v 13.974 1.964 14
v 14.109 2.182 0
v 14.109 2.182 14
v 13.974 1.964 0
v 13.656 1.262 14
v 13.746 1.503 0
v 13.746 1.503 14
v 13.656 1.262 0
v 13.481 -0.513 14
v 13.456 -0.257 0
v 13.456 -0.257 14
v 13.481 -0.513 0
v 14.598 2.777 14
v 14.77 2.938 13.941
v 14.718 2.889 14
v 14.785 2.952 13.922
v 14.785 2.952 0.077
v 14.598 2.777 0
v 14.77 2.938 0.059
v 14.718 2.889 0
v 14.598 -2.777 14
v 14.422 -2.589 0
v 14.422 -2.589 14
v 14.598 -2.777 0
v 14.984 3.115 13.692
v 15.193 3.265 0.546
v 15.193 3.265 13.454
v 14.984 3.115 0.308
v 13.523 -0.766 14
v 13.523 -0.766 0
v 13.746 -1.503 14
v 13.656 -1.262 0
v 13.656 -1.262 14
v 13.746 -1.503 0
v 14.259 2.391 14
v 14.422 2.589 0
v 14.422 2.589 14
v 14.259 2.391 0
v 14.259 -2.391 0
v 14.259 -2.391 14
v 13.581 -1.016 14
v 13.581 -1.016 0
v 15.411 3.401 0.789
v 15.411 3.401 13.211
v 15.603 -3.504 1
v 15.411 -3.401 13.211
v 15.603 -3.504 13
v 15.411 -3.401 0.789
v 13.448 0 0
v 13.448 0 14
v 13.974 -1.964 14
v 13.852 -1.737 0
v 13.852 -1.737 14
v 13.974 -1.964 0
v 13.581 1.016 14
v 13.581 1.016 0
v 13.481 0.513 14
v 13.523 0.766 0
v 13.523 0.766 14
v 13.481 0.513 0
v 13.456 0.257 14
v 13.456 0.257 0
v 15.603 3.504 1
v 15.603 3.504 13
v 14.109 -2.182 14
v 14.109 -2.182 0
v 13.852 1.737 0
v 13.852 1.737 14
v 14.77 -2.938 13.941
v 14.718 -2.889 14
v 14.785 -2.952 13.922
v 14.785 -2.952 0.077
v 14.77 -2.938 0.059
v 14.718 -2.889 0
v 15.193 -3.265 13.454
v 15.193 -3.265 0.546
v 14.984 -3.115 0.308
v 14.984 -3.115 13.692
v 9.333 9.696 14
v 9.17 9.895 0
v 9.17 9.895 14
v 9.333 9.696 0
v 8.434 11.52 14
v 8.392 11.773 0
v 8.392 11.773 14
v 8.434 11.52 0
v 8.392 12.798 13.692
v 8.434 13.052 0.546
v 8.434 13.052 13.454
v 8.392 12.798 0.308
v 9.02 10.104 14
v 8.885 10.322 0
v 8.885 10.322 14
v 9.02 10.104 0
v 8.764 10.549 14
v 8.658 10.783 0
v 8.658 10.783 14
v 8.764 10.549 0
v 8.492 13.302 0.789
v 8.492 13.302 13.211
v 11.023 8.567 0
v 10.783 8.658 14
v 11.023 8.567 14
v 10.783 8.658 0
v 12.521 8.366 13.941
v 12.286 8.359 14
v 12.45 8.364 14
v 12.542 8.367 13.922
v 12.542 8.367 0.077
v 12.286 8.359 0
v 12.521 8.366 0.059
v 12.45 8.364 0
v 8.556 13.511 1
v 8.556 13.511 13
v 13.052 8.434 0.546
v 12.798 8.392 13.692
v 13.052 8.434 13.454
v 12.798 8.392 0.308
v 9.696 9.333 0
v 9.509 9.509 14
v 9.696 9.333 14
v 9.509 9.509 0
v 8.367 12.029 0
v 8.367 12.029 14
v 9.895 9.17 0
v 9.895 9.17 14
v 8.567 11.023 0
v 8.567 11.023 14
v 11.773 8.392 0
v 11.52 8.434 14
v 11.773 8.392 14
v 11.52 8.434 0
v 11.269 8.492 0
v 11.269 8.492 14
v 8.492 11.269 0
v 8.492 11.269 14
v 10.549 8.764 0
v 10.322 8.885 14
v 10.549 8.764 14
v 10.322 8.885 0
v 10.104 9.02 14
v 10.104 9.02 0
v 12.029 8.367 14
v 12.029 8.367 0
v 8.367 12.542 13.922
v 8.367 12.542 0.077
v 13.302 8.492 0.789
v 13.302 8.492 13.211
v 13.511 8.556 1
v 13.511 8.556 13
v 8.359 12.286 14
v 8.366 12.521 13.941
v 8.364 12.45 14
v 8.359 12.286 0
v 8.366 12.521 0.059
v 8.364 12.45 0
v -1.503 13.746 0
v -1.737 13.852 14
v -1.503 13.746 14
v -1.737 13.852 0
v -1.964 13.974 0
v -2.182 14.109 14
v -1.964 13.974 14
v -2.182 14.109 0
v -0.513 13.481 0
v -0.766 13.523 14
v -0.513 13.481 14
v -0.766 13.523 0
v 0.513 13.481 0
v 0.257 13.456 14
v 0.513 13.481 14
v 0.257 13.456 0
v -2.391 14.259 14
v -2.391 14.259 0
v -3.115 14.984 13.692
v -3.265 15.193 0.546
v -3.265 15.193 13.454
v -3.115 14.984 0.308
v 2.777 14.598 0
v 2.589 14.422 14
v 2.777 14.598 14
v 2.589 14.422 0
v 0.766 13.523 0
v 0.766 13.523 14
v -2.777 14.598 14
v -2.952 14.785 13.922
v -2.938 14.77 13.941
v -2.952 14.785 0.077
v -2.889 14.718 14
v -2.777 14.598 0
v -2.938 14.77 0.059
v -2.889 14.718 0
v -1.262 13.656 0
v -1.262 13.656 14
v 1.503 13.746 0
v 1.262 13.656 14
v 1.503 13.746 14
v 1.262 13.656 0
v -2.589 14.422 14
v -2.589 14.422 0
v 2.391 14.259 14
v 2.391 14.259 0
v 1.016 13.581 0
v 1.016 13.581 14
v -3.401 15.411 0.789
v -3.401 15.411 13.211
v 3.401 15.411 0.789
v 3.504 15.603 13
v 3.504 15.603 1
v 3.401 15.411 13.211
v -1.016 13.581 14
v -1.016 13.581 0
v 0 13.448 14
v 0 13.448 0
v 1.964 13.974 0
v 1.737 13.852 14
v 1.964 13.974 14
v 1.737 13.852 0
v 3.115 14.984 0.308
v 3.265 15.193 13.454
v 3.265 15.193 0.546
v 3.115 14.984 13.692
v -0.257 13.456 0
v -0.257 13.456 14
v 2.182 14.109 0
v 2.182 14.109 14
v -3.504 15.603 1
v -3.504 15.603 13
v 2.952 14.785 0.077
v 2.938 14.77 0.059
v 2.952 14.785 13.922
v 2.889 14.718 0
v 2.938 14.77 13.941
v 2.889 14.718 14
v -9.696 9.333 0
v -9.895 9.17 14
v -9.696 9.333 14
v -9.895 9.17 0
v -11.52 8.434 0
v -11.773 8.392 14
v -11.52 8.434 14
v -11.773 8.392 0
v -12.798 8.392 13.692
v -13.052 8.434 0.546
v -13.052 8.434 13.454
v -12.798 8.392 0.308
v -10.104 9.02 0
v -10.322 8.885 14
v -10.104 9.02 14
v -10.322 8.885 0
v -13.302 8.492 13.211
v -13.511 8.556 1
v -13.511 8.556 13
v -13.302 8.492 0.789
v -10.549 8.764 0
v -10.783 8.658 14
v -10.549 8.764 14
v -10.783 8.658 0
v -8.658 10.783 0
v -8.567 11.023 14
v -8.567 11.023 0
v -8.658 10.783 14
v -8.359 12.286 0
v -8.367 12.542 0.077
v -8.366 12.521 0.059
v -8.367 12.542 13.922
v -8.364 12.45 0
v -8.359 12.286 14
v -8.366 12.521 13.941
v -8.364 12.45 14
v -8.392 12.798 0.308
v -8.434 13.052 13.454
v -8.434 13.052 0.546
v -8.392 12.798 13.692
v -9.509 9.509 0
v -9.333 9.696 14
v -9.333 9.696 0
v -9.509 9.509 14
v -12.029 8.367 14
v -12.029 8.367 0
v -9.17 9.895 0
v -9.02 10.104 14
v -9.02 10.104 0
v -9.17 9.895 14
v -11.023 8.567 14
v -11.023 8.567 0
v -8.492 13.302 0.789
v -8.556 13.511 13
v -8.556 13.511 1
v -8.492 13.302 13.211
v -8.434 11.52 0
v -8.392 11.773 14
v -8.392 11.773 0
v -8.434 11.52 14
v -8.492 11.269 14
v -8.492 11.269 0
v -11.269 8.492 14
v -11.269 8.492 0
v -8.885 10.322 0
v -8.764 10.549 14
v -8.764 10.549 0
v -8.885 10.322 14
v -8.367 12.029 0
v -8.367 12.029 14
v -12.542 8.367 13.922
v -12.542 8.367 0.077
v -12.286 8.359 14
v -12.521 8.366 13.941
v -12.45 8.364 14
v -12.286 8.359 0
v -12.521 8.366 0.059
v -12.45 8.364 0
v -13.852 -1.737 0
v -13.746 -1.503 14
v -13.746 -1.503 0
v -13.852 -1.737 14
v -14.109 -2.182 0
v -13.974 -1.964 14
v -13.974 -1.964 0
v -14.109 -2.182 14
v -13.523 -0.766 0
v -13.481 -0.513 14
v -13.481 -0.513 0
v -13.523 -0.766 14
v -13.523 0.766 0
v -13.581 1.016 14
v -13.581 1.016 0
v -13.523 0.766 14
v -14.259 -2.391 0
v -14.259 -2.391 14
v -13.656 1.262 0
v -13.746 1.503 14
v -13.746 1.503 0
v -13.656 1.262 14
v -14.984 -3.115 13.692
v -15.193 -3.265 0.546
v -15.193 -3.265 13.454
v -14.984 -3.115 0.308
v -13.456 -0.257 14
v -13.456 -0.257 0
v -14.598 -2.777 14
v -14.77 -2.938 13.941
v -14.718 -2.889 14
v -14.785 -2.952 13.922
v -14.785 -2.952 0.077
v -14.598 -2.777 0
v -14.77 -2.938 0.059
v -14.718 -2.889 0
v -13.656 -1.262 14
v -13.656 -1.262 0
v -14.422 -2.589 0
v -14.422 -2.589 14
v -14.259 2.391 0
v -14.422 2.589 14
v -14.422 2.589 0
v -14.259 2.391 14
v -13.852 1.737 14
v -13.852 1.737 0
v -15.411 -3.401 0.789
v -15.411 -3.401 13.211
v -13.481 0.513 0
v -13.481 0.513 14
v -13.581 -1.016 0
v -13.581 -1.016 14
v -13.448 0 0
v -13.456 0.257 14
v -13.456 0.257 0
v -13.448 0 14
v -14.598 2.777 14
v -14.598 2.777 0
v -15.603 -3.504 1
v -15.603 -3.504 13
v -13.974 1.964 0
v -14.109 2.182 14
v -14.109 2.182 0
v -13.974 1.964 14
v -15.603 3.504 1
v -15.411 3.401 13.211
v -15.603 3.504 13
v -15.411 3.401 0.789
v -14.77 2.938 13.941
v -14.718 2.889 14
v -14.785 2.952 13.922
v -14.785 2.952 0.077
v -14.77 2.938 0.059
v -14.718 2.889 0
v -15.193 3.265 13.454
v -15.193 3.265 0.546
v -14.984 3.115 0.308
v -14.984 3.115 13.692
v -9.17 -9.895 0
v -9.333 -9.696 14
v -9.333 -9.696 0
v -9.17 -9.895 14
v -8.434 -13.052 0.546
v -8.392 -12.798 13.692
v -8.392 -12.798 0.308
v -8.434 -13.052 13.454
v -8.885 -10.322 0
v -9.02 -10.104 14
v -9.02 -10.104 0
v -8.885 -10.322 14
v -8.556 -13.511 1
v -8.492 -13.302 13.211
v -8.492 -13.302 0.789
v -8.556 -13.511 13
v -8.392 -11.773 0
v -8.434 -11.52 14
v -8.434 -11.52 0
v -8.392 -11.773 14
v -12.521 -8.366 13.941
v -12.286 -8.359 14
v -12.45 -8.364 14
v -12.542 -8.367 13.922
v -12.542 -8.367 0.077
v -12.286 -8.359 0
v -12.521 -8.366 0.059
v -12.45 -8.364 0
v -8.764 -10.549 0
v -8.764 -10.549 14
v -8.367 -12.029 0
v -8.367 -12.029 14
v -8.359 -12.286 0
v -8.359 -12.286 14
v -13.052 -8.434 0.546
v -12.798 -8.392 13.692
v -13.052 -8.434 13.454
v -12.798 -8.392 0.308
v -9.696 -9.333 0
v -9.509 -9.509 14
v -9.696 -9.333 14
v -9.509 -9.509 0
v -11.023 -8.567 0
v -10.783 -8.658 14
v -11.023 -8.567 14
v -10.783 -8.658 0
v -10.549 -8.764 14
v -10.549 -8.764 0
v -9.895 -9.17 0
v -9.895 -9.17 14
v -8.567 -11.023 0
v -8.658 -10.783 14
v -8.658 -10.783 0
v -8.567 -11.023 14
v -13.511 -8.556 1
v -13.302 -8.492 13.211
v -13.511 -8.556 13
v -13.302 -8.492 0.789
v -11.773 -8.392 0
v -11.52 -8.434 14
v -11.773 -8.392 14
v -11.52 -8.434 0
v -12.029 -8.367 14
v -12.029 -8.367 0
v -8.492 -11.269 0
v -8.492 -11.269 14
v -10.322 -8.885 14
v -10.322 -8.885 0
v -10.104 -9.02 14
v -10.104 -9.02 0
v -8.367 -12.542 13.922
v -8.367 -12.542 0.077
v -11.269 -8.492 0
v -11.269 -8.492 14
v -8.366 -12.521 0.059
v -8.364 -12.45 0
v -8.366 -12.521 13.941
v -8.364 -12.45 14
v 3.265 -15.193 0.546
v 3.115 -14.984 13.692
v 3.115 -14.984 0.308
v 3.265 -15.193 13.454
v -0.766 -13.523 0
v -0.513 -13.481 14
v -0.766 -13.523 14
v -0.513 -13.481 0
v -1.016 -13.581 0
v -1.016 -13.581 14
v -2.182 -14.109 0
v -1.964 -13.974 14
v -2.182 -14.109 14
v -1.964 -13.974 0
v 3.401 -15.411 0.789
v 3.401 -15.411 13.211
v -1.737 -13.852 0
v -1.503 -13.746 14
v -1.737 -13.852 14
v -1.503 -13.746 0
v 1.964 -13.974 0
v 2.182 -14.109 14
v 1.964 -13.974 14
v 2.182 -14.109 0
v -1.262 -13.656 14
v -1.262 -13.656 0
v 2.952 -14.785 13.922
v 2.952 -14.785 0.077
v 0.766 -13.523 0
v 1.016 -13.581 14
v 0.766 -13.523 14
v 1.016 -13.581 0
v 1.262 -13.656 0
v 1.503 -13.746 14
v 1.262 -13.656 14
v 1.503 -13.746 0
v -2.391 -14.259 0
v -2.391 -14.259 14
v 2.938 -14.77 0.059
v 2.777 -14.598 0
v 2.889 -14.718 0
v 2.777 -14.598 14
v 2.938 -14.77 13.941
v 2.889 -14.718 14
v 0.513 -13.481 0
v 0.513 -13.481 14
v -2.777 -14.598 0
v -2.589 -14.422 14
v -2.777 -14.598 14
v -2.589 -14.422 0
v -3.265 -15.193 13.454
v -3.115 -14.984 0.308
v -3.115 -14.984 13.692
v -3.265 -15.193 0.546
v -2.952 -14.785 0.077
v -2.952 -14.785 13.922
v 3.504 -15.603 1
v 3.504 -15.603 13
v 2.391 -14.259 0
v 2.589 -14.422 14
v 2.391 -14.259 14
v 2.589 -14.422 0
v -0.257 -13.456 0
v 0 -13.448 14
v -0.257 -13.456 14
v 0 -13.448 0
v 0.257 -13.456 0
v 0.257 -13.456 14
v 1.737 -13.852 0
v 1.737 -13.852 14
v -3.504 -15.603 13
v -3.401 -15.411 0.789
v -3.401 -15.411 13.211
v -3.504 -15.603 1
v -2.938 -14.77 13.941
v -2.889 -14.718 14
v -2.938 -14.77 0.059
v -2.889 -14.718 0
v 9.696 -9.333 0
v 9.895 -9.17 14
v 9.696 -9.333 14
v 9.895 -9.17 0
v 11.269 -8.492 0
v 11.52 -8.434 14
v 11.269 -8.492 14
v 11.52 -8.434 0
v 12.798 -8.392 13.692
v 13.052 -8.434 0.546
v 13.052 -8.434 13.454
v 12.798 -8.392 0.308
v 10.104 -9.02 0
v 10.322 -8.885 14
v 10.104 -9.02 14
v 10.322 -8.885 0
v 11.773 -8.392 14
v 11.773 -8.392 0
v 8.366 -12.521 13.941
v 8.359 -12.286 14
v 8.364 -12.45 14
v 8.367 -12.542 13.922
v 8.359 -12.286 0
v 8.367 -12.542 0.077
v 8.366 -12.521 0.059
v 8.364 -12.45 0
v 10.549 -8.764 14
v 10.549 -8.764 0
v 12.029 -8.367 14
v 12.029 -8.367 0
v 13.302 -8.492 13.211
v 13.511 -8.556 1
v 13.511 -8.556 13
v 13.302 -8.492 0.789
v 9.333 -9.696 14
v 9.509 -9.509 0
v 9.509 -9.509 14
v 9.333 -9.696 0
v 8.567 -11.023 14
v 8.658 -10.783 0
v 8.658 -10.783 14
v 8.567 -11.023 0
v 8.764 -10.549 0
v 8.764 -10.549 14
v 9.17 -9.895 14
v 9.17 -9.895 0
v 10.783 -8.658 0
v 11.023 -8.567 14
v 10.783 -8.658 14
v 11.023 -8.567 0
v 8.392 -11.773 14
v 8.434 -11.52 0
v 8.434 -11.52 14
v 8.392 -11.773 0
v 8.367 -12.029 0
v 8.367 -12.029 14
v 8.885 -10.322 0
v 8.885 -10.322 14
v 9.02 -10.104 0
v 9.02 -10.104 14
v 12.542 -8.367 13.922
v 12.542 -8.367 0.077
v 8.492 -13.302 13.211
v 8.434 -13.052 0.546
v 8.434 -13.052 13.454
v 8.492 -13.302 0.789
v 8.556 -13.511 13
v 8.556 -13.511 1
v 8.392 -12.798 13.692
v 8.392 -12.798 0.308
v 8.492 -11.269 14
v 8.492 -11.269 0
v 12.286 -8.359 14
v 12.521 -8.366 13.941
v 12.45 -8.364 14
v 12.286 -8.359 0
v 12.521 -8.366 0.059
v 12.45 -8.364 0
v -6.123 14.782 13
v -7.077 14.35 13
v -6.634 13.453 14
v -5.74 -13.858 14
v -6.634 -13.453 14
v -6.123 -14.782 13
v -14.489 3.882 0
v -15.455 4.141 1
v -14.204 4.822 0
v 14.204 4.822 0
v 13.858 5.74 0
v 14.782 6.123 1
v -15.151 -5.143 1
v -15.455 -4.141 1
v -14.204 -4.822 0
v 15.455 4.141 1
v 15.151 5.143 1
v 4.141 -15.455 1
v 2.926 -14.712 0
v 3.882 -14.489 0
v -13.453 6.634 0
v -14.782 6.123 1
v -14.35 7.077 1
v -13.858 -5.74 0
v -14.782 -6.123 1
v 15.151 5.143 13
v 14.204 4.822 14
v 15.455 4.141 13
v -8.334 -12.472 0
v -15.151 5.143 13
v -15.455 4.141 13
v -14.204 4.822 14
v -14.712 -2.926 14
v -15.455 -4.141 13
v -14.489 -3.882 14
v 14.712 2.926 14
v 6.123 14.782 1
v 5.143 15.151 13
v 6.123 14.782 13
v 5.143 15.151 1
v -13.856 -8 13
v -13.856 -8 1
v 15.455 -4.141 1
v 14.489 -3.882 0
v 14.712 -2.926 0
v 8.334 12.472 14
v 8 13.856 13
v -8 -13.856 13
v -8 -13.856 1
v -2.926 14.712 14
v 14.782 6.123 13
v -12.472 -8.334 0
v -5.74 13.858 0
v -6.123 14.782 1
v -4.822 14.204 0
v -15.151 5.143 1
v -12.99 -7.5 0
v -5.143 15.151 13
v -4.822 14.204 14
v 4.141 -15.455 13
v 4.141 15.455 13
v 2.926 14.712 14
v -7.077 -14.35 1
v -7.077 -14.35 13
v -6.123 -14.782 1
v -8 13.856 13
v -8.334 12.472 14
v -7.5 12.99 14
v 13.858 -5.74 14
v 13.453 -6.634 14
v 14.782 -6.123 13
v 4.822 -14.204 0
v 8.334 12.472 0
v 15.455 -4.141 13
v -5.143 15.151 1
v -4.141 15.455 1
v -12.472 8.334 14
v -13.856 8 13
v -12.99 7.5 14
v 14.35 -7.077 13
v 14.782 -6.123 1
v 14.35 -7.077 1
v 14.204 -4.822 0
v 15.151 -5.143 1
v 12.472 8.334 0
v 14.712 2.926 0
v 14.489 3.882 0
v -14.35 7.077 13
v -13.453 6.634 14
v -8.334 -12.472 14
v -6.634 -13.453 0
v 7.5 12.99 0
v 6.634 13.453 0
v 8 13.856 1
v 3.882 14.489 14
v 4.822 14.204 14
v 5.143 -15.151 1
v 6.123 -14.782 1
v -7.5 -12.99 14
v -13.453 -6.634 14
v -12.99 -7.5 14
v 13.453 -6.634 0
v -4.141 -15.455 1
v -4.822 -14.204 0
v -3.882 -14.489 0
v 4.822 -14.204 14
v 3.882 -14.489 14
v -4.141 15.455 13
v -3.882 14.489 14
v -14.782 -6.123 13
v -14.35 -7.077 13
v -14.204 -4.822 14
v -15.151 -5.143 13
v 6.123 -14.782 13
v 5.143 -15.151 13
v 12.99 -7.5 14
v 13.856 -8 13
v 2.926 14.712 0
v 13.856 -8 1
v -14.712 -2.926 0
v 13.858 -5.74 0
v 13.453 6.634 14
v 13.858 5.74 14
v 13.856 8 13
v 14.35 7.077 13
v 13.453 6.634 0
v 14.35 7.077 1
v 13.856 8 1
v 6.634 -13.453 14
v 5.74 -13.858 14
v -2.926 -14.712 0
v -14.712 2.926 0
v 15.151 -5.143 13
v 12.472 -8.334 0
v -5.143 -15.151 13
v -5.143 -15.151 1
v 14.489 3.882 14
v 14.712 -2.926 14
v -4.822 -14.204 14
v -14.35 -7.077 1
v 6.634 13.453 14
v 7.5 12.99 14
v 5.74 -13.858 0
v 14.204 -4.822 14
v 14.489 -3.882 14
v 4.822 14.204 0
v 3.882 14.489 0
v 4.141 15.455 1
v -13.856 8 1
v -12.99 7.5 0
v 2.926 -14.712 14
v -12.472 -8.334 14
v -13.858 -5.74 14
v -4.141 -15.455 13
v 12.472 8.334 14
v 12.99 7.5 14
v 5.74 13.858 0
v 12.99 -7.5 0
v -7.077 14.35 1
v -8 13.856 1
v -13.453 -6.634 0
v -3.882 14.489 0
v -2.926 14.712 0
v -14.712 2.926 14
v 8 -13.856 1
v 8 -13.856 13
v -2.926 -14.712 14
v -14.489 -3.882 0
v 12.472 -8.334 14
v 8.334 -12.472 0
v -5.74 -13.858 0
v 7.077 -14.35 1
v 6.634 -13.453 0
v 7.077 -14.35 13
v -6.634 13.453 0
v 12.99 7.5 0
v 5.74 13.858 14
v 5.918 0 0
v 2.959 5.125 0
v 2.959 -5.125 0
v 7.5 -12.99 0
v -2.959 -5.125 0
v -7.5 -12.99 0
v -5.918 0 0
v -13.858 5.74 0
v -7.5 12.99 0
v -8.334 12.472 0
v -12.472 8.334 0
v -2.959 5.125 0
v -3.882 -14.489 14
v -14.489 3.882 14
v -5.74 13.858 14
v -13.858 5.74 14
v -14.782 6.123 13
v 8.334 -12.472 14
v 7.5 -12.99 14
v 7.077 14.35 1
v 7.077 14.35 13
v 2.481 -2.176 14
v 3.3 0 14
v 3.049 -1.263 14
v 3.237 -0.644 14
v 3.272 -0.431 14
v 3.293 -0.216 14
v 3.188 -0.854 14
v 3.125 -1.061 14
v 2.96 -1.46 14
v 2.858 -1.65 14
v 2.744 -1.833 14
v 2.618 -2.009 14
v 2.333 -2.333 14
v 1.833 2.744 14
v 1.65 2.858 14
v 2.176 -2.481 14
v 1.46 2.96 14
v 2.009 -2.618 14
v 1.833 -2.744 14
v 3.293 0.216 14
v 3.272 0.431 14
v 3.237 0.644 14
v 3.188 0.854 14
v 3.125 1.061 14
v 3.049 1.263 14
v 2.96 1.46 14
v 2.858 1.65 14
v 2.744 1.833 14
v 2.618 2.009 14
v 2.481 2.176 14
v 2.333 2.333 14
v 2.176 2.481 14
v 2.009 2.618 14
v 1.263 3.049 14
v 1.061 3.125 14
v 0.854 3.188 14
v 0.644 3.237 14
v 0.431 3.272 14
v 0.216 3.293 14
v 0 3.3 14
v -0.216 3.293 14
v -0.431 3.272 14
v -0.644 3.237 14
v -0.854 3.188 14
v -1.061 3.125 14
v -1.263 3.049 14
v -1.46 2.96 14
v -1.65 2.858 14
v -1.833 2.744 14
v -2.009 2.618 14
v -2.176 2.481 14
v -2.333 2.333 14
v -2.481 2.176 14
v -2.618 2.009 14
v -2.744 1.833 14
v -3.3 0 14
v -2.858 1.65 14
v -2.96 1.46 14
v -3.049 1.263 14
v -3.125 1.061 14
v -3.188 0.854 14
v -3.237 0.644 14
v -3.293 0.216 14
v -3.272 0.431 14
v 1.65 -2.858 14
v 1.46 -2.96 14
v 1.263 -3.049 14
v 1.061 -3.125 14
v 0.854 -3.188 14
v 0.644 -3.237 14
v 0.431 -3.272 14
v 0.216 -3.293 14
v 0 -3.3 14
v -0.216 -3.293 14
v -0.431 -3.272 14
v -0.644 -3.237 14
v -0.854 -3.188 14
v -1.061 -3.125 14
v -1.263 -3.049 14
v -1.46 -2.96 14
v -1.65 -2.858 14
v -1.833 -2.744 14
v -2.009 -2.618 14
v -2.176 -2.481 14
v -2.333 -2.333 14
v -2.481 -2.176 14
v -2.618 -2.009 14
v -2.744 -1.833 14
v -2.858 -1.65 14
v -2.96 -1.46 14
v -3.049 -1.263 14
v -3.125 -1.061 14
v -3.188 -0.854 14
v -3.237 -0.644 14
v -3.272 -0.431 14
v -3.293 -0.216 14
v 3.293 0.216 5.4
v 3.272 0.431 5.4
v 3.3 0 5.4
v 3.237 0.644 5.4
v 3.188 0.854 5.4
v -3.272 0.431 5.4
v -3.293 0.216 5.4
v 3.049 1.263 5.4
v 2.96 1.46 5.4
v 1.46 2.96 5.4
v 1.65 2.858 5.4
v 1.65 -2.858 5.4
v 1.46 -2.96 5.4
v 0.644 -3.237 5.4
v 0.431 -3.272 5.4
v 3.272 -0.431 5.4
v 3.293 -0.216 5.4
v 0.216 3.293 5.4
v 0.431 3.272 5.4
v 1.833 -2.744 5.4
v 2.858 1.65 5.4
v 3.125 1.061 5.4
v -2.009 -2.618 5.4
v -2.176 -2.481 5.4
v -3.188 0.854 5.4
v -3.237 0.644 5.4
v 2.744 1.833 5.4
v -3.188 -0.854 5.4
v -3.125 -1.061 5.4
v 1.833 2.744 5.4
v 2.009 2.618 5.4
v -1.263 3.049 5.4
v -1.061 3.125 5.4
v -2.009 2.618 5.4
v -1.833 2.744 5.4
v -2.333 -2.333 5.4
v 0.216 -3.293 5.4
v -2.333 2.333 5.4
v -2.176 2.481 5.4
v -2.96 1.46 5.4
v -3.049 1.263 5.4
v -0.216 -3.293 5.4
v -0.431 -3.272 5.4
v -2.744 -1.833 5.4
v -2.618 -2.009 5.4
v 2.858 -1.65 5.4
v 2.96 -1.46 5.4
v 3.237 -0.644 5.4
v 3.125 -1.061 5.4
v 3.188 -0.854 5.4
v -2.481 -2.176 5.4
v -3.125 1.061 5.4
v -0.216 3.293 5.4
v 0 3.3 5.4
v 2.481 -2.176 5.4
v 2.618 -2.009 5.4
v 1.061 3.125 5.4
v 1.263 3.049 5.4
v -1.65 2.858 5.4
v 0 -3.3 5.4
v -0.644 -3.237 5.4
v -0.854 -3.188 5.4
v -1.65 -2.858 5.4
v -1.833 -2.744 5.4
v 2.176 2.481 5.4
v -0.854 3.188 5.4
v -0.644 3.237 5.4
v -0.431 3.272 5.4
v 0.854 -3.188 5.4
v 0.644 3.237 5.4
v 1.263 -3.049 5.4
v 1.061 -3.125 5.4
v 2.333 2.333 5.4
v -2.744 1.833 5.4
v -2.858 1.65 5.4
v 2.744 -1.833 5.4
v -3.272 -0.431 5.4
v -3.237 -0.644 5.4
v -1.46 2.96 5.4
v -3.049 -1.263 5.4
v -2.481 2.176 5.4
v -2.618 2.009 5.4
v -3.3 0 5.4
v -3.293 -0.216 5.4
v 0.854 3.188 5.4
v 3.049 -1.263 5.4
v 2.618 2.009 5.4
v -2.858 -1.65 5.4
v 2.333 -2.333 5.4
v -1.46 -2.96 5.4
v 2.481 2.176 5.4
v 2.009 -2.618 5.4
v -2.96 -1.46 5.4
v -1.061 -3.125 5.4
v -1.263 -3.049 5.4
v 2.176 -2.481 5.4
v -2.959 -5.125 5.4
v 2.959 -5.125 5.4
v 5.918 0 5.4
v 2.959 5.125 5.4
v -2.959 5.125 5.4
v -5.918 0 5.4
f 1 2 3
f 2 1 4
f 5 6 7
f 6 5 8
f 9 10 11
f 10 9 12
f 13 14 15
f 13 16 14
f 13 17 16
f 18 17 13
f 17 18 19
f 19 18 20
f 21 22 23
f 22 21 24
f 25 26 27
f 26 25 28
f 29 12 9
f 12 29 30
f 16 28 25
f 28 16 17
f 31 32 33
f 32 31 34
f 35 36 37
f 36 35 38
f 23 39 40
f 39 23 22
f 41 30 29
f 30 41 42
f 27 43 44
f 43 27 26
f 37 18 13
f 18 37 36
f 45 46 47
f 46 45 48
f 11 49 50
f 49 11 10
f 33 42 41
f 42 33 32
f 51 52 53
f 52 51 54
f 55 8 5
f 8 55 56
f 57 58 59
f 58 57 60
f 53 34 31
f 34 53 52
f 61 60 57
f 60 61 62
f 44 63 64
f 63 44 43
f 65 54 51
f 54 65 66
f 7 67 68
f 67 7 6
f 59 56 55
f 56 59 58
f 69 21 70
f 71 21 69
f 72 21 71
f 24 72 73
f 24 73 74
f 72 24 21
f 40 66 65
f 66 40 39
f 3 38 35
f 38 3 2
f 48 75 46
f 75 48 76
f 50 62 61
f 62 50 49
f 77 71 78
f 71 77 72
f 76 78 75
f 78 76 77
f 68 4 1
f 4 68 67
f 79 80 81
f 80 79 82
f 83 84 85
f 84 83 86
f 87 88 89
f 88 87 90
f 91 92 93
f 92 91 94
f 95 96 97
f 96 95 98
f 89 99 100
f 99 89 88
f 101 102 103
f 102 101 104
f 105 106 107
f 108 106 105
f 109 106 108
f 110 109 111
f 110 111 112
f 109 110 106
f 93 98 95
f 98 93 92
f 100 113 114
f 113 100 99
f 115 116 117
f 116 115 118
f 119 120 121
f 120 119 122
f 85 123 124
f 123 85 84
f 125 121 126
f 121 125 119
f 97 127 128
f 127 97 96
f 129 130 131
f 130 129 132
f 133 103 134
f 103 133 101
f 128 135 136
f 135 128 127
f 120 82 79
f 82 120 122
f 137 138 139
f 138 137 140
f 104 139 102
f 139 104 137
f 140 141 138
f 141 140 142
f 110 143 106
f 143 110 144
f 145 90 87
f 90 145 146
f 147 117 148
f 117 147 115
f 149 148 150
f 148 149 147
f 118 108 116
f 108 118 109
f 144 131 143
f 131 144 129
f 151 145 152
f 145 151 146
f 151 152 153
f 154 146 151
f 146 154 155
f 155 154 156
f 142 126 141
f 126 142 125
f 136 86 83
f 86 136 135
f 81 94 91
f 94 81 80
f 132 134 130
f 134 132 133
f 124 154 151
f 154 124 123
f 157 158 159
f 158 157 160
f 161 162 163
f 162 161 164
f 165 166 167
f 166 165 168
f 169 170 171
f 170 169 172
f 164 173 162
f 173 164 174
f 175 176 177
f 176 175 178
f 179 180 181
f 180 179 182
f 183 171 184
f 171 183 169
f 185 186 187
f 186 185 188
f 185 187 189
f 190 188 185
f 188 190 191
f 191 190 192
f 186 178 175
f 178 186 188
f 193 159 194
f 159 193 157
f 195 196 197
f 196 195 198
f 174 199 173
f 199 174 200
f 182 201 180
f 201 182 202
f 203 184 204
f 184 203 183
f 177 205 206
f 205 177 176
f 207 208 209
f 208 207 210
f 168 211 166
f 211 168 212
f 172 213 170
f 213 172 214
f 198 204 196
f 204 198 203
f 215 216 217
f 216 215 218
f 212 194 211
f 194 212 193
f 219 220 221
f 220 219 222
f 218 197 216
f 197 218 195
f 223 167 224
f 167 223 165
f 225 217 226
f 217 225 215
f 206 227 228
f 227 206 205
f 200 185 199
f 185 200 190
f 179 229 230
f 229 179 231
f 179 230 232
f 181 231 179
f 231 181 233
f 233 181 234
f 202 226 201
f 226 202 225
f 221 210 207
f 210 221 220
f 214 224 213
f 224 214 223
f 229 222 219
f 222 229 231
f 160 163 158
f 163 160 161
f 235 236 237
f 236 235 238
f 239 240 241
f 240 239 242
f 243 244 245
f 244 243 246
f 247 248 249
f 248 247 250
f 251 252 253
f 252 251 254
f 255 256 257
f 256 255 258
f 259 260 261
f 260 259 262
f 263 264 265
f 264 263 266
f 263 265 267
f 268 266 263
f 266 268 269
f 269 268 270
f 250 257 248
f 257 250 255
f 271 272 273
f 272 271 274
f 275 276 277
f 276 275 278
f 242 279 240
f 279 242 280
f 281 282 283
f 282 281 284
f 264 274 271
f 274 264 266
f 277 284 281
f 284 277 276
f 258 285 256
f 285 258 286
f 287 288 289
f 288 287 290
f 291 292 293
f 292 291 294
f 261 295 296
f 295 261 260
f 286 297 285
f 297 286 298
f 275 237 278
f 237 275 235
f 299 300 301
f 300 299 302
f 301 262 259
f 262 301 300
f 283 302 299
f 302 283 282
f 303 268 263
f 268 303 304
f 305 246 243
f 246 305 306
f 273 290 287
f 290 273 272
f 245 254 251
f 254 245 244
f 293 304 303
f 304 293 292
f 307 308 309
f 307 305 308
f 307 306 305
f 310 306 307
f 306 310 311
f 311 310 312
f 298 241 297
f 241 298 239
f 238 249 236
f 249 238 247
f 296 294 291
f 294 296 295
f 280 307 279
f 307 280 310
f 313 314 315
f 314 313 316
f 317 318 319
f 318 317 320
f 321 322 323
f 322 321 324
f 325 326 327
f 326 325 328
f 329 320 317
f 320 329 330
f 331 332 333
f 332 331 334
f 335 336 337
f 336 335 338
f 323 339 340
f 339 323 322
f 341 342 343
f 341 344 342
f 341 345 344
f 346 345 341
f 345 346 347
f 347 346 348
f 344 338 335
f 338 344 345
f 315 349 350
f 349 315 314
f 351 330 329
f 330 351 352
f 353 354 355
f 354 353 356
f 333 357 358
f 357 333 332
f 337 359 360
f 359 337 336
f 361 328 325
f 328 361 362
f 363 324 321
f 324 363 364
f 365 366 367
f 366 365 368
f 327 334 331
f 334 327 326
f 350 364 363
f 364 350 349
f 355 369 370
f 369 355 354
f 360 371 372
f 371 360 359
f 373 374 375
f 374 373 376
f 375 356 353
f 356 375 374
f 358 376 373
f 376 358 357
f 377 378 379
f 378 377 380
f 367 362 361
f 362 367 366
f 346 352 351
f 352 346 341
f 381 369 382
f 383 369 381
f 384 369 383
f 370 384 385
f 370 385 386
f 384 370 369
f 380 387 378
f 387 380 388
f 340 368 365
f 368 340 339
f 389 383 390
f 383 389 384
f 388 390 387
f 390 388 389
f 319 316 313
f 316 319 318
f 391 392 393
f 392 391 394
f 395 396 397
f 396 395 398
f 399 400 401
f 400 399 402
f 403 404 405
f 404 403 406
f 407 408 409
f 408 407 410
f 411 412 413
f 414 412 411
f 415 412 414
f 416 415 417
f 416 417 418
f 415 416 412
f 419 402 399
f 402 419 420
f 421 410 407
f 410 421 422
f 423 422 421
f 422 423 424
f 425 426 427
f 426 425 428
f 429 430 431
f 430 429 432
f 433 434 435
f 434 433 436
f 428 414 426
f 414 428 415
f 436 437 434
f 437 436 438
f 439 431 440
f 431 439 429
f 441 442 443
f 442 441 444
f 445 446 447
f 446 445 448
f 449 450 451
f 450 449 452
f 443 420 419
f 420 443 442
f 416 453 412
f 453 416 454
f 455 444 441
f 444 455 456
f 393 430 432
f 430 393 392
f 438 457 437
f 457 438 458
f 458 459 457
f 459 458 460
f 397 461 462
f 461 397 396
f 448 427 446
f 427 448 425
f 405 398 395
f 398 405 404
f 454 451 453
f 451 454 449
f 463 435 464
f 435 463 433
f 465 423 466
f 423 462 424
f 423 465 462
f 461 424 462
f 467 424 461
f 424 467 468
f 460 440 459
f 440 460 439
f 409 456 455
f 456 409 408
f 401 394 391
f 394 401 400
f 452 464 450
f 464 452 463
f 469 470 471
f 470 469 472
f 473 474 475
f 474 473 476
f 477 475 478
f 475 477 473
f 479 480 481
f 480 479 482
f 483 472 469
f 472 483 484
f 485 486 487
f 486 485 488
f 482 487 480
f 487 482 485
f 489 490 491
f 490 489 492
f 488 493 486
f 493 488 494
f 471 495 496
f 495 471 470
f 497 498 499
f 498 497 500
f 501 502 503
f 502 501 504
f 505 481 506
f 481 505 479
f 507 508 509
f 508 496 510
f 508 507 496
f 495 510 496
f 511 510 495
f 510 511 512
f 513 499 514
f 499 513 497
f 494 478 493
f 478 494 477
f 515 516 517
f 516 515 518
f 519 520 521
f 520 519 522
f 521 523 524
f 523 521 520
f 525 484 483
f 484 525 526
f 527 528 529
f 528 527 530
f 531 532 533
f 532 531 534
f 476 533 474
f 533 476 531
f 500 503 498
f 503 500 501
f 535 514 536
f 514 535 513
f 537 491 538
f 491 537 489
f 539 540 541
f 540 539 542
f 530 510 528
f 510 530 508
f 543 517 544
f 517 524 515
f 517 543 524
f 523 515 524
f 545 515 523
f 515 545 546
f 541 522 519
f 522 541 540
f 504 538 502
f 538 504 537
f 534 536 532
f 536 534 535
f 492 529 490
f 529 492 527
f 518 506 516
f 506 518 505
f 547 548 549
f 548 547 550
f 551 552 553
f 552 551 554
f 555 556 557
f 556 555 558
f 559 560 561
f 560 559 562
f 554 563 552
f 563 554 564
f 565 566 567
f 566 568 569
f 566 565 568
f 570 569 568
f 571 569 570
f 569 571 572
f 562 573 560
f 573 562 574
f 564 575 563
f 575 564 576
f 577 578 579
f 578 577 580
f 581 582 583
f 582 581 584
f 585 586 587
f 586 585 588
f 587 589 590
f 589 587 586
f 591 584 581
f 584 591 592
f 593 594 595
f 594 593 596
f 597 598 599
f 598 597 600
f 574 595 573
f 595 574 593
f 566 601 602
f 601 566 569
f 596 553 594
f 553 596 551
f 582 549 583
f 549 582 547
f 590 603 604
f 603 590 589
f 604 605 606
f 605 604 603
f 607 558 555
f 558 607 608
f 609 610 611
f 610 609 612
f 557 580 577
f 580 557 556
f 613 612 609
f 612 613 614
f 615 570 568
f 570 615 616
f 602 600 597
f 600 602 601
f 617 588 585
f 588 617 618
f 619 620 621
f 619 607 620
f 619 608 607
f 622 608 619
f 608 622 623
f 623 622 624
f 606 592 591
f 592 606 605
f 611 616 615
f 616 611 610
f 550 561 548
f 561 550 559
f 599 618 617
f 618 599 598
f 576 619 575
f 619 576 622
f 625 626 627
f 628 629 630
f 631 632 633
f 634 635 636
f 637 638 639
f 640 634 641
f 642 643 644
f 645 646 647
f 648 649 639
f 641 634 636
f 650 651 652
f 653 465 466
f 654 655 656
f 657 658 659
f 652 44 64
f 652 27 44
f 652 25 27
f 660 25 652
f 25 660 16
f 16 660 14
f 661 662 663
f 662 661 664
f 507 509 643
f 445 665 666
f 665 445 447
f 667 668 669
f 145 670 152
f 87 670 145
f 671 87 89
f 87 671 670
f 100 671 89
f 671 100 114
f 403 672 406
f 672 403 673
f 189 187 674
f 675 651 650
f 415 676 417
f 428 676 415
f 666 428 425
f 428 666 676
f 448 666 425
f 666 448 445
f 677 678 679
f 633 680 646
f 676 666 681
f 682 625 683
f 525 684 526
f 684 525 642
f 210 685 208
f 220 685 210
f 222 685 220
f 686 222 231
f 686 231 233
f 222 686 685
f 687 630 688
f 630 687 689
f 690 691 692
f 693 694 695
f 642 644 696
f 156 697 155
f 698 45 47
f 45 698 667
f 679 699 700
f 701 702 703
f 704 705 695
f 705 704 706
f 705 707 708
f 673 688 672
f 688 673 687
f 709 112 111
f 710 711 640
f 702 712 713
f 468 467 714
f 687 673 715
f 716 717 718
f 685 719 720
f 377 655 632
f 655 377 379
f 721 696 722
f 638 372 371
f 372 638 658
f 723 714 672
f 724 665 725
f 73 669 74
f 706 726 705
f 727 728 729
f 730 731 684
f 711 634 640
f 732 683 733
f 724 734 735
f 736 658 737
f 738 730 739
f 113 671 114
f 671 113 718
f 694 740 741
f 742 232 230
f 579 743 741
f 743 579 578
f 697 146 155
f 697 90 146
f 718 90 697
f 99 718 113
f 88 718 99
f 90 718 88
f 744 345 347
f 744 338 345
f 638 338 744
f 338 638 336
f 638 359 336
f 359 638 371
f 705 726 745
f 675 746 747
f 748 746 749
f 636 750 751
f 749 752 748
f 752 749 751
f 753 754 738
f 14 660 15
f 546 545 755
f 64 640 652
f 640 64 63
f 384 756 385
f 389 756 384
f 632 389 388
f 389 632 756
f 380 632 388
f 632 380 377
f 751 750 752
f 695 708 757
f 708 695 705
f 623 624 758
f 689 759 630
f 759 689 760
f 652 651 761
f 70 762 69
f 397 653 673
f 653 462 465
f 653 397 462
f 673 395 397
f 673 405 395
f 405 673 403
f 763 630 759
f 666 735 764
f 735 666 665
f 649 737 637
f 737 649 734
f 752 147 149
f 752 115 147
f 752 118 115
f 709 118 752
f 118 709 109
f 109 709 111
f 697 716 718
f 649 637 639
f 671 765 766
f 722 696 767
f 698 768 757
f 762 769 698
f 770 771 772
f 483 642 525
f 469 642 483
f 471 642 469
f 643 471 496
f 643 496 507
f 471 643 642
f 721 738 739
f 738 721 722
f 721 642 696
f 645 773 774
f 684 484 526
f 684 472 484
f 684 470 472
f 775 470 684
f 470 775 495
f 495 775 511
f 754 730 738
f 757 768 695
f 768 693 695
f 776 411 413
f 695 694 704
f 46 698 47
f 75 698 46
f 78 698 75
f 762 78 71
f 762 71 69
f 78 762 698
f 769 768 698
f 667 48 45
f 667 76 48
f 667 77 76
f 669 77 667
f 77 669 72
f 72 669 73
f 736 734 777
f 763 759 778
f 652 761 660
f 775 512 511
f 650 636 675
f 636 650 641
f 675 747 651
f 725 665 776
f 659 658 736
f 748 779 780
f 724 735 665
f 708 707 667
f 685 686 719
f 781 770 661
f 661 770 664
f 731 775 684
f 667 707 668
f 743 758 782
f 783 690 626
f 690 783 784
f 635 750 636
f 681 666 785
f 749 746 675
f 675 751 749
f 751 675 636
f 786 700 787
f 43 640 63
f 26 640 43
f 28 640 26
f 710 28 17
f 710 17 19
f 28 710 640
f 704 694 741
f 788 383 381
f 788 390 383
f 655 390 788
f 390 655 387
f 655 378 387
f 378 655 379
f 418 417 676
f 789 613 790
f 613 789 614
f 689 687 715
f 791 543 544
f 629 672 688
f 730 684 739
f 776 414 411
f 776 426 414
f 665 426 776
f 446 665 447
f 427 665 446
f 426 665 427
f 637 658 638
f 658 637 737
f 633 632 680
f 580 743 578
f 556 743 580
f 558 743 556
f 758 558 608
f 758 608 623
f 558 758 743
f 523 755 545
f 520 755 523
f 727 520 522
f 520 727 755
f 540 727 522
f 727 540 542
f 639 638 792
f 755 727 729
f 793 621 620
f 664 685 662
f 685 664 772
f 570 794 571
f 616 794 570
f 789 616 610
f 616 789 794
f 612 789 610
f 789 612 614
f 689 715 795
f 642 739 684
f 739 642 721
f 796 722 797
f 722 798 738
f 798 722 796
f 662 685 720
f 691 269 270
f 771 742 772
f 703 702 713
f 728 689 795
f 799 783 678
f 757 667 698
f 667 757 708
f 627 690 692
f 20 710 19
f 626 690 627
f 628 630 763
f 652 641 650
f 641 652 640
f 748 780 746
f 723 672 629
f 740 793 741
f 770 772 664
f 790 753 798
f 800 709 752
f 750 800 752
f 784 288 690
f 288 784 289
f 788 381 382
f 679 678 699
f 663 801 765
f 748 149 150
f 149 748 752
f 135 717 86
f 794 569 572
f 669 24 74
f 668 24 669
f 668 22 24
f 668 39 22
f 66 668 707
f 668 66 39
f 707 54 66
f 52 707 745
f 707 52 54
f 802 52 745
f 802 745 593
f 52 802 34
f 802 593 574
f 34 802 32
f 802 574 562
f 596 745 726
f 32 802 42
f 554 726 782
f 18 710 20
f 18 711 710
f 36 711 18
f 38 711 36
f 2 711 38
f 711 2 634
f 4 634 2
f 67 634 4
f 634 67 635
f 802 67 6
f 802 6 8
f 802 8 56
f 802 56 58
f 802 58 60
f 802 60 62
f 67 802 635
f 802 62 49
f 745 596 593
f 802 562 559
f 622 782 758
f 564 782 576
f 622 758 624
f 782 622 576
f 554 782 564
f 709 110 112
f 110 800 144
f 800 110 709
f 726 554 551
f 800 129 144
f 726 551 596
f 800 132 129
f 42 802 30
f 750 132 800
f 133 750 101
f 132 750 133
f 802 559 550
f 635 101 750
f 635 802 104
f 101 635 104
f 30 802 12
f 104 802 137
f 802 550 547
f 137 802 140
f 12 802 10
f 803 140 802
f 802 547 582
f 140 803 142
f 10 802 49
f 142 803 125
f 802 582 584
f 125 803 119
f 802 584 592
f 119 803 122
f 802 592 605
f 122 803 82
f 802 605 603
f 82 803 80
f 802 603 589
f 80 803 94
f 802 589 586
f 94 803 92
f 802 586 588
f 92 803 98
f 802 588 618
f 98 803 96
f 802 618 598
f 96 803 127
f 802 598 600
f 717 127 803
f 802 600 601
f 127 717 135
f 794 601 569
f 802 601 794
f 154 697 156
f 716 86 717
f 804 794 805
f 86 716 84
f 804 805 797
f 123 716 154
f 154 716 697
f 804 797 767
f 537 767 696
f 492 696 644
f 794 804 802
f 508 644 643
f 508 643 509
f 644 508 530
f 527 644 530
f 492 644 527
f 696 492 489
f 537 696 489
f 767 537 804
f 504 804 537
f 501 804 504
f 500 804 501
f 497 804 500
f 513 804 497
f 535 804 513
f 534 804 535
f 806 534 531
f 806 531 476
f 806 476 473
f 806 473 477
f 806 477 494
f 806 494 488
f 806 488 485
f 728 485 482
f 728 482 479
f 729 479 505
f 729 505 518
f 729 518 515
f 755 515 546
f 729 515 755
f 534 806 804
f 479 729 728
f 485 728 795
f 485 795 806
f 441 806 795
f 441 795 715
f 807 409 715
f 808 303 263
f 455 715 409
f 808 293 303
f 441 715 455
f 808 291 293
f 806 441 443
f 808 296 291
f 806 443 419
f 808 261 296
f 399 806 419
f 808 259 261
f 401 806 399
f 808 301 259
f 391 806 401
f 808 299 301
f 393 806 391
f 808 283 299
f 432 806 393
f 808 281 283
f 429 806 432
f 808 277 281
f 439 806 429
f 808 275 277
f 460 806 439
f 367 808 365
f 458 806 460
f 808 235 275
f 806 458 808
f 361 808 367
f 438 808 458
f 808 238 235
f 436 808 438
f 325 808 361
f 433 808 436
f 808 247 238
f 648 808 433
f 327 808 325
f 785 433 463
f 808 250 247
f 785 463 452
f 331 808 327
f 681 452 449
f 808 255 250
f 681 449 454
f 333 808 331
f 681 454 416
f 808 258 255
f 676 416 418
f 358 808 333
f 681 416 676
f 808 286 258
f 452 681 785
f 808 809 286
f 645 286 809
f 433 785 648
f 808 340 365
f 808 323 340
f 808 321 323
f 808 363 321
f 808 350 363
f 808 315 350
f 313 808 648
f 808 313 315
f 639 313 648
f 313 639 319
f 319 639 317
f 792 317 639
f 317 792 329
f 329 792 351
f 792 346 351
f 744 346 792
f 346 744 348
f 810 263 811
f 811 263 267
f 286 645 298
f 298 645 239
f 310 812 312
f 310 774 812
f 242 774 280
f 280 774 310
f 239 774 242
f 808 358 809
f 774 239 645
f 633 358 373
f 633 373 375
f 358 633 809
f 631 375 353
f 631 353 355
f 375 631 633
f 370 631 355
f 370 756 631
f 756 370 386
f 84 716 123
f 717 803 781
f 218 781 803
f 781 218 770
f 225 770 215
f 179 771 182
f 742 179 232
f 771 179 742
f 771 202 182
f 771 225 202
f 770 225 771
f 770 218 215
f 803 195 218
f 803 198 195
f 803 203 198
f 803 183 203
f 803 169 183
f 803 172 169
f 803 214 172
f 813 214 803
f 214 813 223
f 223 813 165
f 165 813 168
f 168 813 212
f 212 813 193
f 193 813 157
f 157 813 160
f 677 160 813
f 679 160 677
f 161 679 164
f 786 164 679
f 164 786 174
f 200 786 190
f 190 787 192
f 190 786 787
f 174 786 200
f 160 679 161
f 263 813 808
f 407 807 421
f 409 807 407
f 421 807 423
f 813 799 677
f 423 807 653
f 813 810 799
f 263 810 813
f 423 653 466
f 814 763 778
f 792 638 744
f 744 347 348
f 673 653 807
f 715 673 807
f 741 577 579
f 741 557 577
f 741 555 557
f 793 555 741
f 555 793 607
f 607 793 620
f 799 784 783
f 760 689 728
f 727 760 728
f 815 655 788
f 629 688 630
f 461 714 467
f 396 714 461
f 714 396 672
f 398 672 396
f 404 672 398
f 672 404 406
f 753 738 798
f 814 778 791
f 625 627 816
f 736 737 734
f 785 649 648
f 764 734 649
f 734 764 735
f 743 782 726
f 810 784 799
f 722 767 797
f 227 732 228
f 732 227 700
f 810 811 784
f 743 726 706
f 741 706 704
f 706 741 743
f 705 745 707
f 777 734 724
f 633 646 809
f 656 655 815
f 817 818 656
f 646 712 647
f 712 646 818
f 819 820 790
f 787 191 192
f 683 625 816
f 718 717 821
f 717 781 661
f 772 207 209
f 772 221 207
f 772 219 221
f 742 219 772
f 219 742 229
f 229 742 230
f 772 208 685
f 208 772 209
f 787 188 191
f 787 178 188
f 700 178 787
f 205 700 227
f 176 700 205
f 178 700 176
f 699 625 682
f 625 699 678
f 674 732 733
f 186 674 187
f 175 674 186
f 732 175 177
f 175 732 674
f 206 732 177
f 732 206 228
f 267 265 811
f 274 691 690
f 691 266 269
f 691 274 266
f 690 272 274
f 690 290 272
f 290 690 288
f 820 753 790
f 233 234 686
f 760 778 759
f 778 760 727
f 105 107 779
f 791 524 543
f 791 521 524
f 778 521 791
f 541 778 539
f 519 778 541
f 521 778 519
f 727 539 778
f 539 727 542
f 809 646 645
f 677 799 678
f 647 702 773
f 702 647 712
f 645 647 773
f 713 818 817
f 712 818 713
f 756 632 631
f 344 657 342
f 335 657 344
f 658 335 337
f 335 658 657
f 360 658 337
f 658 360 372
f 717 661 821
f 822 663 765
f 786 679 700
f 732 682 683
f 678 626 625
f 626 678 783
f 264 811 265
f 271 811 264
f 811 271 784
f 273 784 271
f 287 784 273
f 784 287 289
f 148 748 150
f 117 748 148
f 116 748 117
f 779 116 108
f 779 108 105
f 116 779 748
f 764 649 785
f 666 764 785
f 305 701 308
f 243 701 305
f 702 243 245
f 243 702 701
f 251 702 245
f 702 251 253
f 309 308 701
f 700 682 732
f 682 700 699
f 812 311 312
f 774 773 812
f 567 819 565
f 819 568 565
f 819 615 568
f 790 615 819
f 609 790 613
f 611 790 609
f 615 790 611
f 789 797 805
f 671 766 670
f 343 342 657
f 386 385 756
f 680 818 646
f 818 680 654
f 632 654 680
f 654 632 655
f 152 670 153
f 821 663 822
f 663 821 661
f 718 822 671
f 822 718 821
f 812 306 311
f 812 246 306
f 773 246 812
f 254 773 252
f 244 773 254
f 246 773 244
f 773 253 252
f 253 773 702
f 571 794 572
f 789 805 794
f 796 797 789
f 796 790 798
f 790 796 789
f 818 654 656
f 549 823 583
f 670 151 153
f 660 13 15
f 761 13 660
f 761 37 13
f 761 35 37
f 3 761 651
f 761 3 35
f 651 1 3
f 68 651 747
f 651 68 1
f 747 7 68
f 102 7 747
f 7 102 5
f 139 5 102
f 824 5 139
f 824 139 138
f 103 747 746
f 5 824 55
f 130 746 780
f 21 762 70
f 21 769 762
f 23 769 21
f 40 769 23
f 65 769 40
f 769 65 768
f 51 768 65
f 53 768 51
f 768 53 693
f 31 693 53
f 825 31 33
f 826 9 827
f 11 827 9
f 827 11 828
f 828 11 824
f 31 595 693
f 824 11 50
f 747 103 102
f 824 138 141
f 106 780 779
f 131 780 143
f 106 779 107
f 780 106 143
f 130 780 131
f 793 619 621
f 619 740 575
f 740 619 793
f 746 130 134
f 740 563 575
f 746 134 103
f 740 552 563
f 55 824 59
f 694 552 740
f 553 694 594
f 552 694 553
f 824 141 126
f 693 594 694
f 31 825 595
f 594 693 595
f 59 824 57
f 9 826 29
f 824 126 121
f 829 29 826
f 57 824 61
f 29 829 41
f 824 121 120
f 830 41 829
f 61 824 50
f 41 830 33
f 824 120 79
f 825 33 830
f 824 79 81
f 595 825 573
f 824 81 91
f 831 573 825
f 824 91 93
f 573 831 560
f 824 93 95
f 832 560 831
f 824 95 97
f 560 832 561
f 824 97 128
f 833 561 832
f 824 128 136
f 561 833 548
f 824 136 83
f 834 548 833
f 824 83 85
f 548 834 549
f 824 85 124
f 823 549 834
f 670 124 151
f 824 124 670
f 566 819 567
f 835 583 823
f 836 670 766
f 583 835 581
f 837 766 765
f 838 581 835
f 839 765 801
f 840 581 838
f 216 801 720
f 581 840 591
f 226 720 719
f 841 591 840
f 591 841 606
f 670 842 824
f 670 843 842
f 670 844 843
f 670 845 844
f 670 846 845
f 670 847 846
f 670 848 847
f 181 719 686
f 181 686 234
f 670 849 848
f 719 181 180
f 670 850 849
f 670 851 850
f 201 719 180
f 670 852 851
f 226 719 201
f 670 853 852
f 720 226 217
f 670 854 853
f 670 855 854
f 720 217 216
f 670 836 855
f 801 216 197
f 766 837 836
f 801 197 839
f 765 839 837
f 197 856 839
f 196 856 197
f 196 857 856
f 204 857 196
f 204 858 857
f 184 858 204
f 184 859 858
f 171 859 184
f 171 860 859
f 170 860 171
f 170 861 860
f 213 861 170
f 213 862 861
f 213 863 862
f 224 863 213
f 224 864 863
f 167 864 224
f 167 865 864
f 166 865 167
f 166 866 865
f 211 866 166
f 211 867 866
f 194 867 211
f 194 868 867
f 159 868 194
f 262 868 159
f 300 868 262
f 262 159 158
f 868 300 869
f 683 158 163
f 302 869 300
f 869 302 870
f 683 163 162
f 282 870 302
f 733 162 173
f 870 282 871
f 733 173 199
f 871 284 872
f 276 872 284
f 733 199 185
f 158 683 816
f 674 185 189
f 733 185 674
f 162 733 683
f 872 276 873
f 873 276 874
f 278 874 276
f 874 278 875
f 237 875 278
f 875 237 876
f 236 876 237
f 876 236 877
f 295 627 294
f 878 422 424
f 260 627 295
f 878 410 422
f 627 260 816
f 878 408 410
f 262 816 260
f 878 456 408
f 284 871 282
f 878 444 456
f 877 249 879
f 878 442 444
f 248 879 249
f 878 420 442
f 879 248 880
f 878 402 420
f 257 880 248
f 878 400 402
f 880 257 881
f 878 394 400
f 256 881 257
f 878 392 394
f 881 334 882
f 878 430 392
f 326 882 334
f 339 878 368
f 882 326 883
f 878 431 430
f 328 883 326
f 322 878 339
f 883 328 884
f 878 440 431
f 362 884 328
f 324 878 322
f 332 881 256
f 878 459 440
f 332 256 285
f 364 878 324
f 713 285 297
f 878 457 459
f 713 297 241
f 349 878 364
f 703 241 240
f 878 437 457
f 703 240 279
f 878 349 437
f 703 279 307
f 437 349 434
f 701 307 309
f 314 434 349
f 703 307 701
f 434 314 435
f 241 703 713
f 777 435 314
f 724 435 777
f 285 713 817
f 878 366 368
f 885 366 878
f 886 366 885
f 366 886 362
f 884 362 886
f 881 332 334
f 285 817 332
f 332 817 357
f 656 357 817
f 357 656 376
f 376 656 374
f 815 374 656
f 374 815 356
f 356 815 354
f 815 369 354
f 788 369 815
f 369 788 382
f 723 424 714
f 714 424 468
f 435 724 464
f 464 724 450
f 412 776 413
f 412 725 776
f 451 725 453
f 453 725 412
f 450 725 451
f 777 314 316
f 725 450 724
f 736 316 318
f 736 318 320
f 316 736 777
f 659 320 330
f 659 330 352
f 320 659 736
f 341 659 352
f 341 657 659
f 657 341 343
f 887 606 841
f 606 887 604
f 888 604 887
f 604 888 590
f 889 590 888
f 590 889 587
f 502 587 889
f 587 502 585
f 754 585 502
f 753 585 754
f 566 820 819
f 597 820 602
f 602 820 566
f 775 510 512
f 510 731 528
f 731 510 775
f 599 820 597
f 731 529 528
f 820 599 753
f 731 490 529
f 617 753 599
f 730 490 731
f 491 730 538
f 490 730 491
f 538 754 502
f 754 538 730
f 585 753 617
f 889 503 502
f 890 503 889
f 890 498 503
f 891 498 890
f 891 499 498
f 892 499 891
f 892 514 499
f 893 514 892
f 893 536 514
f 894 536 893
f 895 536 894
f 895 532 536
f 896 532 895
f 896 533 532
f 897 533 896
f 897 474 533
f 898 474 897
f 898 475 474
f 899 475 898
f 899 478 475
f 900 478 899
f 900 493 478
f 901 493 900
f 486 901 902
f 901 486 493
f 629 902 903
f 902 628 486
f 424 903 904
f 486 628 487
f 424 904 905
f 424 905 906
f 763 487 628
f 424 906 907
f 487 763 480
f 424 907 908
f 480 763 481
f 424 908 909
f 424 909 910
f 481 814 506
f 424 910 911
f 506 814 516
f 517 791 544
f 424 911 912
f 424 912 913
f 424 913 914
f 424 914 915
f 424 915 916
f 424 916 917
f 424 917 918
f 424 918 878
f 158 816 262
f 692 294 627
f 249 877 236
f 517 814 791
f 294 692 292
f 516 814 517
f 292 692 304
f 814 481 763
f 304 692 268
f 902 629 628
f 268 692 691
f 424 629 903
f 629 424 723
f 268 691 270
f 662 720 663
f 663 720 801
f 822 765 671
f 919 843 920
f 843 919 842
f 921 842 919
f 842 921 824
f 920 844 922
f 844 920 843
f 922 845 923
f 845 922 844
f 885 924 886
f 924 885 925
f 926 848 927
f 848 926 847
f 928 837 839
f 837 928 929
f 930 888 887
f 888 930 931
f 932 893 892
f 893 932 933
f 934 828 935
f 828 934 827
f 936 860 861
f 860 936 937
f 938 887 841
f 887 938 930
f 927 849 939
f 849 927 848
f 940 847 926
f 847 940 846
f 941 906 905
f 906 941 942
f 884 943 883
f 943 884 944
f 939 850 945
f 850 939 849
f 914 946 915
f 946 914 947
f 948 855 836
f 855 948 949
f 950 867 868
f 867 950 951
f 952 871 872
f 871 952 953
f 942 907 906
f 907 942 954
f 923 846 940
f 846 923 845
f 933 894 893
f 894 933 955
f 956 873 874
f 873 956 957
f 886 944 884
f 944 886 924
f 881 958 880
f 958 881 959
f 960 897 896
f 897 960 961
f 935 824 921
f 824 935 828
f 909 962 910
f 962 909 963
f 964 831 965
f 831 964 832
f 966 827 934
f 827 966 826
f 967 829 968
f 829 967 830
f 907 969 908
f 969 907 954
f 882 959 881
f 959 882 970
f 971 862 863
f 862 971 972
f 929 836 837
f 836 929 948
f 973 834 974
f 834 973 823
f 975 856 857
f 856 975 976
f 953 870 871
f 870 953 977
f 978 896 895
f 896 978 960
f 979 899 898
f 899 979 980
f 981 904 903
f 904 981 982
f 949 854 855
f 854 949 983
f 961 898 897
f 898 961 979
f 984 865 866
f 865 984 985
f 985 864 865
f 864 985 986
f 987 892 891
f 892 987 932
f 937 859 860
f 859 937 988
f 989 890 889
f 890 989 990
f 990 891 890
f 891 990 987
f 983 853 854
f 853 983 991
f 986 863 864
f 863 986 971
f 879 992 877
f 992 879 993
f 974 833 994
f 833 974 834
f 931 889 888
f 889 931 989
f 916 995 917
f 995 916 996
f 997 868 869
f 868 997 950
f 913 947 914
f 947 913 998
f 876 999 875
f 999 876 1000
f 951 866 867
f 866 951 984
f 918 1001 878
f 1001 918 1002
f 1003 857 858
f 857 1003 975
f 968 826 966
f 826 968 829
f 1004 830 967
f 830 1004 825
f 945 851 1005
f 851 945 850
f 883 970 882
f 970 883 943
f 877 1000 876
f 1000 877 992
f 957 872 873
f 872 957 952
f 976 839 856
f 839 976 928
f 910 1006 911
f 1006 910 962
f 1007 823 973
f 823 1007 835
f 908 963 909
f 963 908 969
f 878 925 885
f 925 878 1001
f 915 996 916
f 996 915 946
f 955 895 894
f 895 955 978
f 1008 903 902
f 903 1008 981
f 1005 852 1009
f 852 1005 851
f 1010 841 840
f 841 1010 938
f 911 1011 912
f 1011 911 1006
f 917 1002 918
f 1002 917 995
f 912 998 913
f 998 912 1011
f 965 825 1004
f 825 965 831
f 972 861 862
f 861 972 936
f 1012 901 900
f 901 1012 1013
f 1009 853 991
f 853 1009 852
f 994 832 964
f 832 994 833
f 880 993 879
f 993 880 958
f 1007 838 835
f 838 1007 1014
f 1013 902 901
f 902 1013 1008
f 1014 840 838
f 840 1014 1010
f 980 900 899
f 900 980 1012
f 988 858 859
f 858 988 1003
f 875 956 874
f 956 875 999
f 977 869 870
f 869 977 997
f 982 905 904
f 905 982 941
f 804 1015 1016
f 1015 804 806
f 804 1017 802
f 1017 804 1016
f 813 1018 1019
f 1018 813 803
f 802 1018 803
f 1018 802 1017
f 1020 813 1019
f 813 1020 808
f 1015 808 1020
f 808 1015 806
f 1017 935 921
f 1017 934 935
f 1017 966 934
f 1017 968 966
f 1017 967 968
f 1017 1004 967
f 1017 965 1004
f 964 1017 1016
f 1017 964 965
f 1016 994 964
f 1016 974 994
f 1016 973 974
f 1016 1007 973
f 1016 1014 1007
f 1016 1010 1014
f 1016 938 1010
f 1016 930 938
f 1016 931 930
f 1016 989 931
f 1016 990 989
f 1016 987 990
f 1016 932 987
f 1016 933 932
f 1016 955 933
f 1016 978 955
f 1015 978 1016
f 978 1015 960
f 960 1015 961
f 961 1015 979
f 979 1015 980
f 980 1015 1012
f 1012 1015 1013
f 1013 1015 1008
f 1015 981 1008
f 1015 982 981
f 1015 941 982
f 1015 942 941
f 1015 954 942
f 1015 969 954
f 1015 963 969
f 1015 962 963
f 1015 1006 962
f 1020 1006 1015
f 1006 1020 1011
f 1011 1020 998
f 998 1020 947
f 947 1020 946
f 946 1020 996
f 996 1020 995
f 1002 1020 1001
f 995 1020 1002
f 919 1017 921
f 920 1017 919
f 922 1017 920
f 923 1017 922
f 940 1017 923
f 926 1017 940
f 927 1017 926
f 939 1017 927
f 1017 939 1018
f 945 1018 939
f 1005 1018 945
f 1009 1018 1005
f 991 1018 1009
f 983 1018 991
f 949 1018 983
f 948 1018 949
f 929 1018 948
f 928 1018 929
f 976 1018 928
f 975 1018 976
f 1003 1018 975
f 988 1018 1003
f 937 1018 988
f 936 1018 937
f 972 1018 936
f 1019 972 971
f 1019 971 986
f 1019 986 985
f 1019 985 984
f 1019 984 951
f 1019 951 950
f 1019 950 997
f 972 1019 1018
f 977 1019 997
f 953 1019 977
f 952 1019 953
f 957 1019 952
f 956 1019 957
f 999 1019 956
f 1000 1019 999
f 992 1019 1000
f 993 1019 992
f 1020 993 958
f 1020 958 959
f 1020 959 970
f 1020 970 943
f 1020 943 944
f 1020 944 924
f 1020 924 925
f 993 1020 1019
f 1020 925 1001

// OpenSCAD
// Universal Knob — grip knob for a bolt or threaded rod.
// Fits M3–M8 hex nuts or hex-head bolts. Use it for clamps, jigs,
// 3D-printer beds, camera mounts, furniture, replacing a lost knob…
// Print flat (as rendered). Press the nut in (a dab of glue helps).

/* [Fastener] */
// Metric thread size
size = 6;               // [3, 4, 5, 6, 8]
// "nut": nut trap on the bottom, rod passes through.
// "bolt": hex bolt head trapped in the top, thread sticks out the bottom (thumbscrew).
mode = "nut";           // ["nut", "bolt"]
// Extra clearance for the hex pocket (mm). Increase if it's too tight.
tol = 0.25;             // [0:0.05:0.6]

/* [Knob] */
// Knob diameter (mm)
knob_d = 32;            // [15:1:80]
// Knob height (mm)
knob_h = 14;            // [6:1:40]
// Number of finger flutes
flutes = 8;             // [0:1:20]

/* [Hidden] */
$fn = 96;
// [size, clearance hole, hex across flats, nut height, bolt head height]
table = [[3, 3.4, 5.5, 2.4, 2.0],
         [4, 4.5, 7.0, 3.2, 2.8],
         [5, 5.5, 8.0, 4.0, 3.5],
         [6, 6.6, 10.0, 5.0, 4.0],
         [8, 9.0, 13.0, 6.5, 5.3]];
row = table[search(size, table)[0]];
hole_d = row[1];
hex_d = (row[2] + tol) / cos(30);
hex_h = (mode == "nut" ? row[3] : row[4]) + 0.4;
assert(hex_d < knob_d - 6, "knob_d too small for this fastener");
assert(hex_h < knob_h - 2, "knob_h too small for this fastener");
flute_r = PI * knob_d / flutes / 3.2;

difference() {
    // body with chamfered edges
    hull() {
        translate([0, 0, 1]) cylinder(d = knob_d, h = knob_h - 2);
        cylinder(d = knob_d - 2, h = knob_h);
    }
    if (flutes > 0)
        for (a = [0 : 360 / flutes : 359])
            rotate(a) translate([knob_d / 2 + flute_r * 0.35, 0, -1])
                cylinder(r = flute_r, h = knob_h + 2);
    translate([0, 0, -1]) cylinder(d = hole_d, h = knob_h + 2);
    if (mode == "nut")
        translate([0, 0, -1]) cylinder(d = hex_d, h = hex_h + 1, $fn = 6);
    else
        translate([0, 0, knob_h - hex_h]) cylinder(d = hex_d, h = hex_h + 1, $fn = 6);
}
